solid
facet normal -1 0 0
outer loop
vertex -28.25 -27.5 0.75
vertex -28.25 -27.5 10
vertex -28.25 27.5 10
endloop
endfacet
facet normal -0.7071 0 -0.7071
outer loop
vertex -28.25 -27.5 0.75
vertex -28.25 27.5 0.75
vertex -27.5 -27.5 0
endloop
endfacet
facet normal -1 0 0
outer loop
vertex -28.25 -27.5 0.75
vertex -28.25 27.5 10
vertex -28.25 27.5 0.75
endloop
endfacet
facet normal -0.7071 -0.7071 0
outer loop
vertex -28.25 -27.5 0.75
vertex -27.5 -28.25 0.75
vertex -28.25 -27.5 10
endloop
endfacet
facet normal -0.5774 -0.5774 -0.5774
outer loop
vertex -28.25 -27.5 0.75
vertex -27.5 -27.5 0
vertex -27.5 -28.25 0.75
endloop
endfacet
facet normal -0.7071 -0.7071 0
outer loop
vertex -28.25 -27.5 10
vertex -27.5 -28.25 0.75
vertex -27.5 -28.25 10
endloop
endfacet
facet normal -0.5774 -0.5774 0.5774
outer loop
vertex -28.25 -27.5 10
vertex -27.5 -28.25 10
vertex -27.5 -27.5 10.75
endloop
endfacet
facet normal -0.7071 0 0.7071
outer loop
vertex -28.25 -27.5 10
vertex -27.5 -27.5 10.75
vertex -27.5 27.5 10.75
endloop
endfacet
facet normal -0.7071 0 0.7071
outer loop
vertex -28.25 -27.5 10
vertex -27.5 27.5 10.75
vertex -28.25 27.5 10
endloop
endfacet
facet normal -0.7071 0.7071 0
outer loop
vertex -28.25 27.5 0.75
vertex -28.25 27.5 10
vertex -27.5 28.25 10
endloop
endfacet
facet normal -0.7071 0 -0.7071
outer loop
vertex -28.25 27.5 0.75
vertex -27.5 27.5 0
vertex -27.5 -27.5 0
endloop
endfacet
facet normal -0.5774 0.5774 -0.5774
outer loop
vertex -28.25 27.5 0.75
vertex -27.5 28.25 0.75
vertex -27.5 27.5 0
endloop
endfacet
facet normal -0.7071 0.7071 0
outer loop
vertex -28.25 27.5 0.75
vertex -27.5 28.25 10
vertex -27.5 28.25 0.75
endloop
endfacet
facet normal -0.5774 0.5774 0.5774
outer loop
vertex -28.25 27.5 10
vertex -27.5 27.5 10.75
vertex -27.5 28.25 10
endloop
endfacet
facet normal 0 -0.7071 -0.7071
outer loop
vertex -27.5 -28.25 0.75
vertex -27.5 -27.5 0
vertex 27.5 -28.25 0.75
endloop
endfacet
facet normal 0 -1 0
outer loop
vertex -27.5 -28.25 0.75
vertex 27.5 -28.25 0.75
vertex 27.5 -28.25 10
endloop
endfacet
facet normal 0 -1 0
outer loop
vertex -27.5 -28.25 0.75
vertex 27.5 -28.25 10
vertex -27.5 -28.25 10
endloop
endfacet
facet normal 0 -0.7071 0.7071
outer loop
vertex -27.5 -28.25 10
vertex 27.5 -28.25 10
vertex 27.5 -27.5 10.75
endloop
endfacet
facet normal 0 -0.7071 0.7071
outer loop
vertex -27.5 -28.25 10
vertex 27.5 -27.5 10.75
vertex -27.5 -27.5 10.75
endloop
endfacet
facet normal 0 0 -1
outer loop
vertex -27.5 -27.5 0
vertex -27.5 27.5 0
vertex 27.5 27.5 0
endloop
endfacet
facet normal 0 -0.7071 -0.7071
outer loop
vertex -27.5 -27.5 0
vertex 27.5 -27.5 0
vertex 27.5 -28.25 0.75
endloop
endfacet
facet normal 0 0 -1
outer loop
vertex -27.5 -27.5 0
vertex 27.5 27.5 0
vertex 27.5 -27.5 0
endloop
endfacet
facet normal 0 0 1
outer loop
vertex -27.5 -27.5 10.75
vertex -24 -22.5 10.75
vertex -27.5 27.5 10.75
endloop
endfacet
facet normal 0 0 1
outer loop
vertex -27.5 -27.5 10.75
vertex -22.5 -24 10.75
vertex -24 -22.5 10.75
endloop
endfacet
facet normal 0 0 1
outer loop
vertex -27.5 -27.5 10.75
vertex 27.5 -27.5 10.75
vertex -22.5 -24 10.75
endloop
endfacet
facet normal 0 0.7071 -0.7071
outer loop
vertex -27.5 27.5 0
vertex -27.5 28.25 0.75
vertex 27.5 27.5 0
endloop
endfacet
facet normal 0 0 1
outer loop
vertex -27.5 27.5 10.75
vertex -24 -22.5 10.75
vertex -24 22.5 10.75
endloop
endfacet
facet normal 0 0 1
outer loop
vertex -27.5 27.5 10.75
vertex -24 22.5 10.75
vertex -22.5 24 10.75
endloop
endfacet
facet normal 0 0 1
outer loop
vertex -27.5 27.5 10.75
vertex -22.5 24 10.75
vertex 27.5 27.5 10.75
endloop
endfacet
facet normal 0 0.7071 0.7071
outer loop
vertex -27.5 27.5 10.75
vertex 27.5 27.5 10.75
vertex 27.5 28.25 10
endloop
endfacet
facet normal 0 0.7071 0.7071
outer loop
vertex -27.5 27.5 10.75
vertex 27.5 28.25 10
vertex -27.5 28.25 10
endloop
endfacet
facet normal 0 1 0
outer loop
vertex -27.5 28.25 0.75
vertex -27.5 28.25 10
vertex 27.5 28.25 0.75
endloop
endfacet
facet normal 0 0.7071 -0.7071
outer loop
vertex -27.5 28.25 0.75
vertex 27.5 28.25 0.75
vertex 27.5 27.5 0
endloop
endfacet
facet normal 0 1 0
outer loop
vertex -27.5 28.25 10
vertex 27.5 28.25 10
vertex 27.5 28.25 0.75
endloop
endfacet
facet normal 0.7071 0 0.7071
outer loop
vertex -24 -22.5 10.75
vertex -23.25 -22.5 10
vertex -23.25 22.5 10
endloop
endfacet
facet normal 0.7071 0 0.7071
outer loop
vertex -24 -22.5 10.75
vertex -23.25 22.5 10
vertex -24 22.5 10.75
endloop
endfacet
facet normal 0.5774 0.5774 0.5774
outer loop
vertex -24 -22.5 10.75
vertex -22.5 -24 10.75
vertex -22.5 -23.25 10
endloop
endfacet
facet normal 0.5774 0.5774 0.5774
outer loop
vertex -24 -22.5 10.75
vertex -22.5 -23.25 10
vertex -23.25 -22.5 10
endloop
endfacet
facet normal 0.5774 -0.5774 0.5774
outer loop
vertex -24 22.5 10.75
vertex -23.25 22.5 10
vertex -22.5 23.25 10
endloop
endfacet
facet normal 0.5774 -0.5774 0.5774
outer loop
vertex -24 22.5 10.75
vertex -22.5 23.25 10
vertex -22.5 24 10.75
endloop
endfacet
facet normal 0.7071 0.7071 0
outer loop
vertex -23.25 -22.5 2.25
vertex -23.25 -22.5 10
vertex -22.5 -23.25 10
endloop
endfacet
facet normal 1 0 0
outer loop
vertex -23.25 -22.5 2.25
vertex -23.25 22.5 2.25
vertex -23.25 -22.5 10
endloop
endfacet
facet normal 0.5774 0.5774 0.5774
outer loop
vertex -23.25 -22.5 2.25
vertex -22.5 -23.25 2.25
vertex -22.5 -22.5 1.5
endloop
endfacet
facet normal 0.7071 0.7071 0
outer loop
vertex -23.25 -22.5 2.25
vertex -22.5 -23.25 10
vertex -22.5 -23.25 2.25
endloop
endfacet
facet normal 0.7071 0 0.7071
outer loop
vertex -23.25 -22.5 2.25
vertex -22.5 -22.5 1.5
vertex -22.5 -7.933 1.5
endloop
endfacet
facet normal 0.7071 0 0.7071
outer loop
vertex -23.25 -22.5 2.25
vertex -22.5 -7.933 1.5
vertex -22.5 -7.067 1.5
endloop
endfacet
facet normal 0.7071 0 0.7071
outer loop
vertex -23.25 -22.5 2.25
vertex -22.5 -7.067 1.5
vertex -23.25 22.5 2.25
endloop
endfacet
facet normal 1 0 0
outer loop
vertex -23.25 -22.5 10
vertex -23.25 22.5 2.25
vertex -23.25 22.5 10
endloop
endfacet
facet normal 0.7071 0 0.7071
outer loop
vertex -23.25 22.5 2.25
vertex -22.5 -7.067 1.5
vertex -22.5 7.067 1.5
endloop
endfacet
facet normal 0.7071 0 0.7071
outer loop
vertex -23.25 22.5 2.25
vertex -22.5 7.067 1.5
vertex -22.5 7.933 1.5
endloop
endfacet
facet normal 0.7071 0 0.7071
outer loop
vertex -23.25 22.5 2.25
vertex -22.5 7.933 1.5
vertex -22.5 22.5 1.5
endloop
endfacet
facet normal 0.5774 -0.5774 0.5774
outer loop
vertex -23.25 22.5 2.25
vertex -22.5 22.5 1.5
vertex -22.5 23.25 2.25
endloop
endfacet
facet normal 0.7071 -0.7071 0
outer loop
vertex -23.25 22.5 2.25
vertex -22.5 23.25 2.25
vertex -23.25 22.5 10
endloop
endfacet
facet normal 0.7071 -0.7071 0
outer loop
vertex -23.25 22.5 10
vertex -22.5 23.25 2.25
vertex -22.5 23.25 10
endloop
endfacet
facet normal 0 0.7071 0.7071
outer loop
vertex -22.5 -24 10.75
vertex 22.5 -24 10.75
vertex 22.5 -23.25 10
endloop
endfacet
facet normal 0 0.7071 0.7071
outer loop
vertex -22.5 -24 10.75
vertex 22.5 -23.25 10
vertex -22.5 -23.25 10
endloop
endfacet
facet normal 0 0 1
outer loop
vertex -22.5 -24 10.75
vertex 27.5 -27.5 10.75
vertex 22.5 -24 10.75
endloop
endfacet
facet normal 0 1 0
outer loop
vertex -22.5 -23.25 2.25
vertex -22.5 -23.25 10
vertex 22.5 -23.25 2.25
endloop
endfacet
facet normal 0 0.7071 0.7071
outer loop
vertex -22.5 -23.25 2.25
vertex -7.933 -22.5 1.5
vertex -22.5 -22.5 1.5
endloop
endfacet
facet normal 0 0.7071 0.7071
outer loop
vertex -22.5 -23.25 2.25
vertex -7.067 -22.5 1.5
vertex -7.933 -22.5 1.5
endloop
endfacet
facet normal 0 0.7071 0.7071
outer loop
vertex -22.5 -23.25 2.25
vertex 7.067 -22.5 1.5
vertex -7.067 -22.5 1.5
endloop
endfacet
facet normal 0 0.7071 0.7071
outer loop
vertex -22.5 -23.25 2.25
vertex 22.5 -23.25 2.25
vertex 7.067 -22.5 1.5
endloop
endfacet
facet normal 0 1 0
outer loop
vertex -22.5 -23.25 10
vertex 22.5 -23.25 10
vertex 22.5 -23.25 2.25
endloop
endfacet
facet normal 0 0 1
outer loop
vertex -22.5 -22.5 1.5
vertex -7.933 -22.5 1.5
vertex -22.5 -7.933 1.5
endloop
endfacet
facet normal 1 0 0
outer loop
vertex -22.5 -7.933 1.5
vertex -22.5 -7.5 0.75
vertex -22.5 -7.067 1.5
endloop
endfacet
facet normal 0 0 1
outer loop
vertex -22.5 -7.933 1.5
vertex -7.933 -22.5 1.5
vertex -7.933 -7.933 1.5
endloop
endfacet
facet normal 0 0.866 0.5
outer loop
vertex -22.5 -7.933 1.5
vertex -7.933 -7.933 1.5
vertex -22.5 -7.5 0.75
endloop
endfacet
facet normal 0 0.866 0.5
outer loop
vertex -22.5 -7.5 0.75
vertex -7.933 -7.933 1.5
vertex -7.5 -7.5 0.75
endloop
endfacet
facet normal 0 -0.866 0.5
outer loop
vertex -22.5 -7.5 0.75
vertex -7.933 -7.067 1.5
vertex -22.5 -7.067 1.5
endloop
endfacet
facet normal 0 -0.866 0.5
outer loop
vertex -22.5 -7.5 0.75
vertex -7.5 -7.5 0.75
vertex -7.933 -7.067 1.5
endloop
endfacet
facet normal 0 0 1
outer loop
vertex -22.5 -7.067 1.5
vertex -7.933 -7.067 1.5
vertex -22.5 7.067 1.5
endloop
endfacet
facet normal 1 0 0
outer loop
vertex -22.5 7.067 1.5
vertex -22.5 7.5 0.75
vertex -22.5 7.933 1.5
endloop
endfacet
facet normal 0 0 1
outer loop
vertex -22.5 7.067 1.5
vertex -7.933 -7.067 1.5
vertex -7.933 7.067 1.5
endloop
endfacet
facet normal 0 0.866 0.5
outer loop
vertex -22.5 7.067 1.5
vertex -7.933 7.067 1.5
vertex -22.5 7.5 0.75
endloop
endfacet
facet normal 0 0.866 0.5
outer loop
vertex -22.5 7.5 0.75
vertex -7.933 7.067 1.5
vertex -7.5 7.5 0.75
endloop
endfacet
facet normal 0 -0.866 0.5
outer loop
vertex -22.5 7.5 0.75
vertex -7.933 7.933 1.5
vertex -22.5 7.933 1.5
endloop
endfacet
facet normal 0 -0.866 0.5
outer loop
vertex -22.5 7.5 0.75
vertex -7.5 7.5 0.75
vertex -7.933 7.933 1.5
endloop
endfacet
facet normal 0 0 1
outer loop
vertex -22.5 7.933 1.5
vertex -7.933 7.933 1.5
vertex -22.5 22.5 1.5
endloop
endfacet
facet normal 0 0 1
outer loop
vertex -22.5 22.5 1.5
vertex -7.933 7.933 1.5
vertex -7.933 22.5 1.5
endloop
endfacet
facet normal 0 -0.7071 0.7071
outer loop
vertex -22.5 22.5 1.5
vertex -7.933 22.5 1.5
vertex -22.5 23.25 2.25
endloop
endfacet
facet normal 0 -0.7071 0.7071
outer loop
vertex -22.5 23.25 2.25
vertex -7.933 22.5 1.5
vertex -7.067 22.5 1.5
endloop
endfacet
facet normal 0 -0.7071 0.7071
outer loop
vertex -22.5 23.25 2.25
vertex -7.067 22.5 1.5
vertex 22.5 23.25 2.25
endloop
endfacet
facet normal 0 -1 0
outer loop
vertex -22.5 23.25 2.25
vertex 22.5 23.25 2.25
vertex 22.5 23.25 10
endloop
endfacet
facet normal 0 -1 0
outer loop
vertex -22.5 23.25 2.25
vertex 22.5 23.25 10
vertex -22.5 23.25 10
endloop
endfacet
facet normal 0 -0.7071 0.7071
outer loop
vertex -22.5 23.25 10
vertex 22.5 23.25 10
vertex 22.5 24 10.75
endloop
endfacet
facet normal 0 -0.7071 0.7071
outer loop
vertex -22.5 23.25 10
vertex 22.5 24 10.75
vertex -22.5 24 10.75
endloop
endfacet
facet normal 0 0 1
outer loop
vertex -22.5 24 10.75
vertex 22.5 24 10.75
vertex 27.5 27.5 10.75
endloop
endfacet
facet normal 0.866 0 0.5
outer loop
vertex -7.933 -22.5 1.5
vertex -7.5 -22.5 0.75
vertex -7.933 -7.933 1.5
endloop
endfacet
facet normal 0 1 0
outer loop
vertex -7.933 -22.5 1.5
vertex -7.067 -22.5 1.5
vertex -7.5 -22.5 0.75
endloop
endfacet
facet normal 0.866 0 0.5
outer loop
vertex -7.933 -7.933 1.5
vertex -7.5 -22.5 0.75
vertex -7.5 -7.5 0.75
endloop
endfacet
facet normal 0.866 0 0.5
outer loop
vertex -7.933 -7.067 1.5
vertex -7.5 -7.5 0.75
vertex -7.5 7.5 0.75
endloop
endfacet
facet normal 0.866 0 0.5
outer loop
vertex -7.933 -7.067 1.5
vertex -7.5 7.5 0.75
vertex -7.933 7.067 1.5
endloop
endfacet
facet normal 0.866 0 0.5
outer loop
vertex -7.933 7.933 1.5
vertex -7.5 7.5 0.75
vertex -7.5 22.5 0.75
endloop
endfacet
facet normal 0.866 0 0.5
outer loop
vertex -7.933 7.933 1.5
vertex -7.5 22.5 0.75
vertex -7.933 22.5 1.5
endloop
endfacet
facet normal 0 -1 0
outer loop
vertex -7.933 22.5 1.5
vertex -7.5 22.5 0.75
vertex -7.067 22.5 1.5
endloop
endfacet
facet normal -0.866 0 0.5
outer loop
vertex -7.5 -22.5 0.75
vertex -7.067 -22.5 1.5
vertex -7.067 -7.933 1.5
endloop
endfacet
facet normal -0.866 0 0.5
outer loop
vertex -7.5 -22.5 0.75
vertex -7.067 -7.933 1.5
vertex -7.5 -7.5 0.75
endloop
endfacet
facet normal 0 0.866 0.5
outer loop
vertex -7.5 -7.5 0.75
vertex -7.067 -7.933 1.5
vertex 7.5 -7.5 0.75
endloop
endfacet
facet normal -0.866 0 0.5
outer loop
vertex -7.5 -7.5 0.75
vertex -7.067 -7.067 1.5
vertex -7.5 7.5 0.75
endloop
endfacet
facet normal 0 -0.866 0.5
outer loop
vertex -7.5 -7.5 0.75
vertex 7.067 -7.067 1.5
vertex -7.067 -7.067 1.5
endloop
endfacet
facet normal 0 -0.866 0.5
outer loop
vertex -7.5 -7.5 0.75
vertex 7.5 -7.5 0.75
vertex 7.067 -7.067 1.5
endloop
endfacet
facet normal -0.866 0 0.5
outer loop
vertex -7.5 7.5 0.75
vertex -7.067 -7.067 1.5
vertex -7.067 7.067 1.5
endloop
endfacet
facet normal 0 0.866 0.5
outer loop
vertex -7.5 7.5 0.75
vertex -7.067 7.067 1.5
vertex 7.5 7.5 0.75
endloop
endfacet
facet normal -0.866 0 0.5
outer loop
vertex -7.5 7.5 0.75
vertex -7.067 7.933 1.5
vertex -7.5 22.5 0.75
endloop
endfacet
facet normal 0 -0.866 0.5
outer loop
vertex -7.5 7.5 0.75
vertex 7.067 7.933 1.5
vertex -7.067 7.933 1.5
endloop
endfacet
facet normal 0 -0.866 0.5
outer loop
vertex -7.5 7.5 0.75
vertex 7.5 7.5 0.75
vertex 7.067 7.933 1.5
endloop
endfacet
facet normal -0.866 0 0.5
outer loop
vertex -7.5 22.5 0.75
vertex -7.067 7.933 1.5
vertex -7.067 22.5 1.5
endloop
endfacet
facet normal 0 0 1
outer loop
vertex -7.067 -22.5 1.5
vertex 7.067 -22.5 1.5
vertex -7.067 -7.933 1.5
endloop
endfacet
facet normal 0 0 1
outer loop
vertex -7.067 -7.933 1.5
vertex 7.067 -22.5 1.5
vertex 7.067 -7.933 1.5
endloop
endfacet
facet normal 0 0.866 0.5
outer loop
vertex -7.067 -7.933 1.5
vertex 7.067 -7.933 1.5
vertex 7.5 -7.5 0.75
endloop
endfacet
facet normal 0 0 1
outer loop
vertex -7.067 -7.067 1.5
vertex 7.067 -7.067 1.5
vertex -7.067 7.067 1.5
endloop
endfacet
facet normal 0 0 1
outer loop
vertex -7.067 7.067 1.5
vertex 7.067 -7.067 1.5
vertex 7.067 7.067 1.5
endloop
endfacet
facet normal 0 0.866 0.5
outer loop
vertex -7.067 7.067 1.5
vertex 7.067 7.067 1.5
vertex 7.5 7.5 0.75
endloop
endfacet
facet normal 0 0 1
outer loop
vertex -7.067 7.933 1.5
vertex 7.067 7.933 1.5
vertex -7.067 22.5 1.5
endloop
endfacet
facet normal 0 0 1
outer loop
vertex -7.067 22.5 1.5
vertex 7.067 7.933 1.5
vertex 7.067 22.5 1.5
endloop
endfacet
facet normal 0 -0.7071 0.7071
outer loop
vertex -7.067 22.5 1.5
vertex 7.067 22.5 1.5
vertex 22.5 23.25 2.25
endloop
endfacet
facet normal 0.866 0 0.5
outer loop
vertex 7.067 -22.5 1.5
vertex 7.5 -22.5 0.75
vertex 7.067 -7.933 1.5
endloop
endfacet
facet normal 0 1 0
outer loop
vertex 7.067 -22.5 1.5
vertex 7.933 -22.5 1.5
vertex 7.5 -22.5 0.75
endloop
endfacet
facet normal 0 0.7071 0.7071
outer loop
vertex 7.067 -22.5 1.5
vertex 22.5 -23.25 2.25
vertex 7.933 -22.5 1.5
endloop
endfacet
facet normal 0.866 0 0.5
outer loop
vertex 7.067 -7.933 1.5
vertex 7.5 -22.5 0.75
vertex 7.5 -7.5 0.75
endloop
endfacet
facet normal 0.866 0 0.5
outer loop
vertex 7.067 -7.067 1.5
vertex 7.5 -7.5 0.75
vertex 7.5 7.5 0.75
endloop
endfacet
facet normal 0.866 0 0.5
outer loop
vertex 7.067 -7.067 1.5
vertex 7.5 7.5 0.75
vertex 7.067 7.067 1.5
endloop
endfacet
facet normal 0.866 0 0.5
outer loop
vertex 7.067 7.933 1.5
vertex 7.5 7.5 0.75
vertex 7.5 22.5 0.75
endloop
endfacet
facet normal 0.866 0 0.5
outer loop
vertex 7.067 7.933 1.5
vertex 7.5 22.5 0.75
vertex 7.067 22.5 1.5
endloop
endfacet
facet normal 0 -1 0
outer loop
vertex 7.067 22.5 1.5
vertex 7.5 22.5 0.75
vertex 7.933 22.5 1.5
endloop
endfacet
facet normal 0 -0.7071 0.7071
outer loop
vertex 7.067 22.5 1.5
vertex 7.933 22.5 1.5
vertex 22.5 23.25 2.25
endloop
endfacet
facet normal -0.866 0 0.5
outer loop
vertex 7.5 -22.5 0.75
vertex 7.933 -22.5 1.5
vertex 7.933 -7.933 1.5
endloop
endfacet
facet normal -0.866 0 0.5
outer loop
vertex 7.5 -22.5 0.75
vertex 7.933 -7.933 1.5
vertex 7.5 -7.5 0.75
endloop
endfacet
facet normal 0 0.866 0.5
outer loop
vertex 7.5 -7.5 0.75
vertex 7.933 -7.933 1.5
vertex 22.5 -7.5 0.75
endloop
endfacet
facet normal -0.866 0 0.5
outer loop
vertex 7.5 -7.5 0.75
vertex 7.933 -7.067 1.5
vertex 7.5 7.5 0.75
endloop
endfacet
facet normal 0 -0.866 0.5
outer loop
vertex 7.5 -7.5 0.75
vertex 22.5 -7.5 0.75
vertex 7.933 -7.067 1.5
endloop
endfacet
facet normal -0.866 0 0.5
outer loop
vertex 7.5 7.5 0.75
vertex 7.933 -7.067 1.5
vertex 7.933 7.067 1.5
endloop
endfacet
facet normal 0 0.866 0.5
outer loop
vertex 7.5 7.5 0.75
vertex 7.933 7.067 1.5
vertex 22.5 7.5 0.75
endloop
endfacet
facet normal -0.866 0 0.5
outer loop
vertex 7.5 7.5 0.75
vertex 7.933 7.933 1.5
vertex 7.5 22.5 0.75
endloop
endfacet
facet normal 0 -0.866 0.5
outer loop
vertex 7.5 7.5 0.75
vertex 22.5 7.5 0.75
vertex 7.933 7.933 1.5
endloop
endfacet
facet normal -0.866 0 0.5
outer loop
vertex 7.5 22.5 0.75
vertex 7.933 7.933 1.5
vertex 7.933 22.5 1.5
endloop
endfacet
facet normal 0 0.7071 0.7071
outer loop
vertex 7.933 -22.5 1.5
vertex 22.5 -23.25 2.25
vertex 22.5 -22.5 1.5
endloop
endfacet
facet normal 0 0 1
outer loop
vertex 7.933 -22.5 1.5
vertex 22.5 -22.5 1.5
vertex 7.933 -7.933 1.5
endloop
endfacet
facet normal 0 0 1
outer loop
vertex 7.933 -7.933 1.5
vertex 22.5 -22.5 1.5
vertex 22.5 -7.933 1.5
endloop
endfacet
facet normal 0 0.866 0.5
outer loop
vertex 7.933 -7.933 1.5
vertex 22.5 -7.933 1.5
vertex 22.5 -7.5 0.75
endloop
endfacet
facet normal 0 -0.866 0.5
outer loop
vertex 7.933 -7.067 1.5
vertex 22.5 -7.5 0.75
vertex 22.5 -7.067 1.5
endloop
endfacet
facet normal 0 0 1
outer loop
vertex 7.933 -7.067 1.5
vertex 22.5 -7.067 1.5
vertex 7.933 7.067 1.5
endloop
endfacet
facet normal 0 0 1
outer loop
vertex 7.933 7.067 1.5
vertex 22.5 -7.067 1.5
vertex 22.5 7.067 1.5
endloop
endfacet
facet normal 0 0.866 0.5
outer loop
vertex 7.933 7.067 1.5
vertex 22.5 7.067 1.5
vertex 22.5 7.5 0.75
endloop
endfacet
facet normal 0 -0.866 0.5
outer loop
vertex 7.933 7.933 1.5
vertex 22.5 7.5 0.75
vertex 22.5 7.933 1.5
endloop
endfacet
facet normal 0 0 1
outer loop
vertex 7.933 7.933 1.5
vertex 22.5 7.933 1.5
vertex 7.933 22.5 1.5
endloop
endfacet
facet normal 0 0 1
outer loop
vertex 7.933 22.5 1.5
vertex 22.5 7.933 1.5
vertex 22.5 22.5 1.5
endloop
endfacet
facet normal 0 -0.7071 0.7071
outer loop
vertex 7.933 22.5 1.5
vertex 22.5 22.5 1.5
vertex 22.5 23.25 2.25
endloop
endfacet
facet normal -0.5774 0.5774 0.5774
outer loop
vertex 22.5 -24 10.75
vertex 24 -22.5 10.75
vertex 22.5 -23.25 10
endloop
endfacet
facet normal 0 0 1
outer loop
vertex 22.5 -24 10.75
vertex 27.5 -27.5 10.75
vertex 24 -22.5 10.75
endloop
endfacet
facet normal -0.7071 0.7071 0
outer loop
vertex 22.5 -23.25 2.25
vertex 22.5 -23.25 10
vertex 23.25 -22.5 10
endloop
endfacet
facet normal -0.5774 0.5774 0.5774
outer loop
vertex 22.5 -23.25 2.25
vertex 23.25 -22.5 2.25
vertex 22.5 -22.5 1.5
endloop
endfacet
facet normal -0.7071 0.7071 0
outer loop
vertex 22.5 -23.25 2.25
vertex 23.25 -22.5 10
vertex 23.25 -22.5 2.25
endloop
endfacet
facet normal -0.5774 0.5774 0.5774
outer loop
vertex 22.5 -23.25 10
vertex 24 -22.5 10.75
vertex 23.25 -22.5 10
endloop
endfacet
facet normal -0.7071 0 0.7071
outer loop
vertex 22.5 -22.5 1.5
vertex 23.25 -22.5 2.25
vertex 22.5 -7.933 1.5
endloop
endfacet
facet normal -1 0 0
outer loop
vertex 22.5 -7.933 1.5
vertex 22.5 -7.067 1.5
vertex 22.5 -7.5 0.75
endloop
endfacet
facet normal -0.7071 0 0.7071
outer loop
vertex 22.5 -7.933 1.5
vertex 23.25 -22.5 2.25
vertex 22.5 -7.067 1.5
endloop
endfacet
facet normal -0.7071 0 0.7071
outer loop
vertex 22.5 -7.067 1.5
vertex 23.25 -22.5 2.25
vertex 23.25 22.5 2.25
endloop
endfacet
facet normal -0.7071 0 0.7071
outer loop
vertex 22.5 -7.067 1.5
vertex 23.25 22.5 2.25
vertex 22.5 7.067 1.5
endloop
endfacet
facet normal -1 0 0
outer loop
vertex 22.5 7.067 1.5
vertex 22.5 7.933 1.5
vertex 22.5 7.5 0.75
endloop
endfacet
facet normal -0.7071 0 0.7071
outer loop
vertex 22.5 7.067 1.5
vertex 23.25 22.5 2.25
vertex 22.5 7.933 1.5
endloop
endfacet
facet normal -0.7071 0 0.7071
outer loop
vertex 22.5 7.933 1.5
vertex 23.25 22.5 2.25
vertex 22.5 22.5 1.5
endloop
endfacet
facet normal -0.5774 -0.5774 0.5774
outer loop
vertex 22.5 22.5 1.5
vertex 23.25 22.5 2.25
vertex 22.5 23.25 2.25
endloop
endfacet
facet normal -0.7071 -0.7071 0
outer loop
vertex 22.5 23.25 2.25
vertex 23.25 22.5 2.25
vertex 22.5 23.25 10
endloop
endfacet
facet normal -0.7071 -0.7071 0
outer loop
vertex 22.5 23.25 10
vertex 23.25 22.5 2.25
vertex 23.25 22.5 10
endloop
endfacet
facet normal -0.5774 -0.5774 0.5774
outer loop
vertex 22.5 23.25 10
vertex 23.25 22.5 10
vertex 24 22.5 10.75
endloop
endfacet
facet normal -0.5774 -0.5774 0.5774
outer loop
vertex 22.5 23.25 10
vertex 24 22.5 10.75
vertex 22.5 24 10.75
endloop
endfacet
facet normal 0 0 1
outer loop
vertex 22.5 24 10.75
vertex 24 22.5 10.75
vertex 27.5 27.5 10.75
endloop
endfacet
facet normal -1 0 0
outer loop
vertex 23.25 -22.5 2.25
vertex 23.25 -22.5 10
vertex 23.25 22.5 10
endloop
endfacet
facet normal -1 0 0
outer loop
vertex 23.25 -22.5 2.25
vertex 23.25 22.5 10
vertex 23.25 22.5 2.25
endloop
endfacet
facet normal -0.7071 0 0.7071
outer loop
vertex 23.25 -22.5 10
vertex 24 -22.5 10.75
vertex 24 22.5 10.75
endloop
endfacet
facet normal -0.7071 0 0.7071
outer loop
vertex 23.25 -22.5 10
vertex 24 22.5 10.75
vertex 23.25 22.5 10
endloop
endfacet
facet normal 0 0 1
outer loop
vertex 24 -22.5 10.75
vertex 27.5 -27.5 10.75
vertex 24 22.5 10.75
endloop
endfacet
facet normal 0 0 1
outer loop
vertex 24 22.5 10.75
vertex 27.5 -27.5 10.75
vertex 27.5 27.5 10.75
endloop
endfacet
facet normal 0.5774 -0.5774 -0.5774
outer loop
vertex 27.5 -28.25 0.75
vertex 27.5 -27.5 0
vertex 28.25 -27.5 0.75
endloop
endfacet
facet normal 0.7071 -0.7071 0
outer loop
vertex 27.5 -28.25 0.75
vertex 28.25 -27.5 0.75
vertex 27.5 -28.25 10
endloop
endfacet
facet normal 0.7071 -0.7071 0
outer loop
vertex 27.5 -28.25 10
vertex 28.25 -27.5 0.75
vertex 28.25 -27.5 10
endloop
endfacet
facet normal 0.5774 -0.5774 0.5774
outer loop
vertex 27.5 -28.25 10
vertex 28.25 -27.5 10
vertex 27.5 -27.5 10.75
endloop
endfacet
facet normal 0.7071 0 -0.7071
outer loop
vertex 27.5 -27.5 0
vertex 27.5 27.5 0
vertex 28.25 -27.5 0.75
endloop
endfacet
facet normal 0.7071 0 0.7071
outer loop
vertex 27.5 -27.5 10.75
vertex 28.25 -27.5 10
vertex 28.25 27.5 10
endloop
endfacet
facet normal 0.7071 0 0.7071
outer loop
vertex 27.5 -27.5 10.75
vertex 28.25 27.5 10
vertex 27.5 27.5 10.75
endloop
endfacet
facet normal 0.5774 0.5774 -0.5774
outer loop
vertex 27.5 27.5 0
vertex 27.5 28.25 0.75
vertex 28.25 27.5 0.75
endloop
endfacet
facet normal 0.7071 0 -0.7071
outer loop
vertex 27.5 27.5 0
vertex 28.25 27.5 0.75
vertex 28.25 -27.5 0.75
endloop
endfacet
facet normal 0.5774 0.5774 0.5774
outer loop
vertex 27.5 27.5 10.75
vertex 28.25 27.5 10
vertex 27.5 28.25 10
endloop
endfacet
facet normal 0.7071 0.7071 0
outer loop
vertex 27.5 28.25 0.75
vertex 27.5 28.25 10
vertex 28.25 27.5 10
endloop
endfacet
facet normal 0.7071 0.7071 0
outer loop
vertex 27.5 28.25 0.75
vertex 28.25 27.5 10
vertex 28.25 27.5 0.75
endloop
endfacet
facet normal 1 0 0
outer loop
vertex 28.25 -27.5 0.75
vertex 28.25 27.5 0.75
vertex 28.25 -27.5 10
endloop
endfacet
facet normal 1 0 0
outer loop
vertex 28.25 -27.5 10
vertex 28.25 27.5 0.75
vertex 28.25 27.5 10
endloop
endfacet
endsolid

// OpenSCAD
s=15;
size=3;
wall=5;
padding=0.75;
cham=.75;





difference(){
  Box();
  translate([0,0,cham*2])
    for(rot=[[90, 0], [90, 0, 90]])rotate(rot)
      for(i=[-size/2+1:size/2-1])translate([i*s, 0])
        rotate([0, 0, 30])cylinder(s*size, r=cham, $fn=3, center=true);
  
}



module Box(side=s*size+wall*2+padding*2)
minkowski(convexity=5){
  difference(){
    translate([0,0, side/2]) cube(side-cham*2,true);
    translate([0,0, side/2-wall+cham*2.0001]) minkowski(){
      cube(side-wall*2-cham*2,true);
      scale(2)union(){
        cylinder(cham, r1=cham, r2=0, $fn=4);
        rotate([180, 0])cylinder(cham, r1=cham, r2=0, $fn=4);
      }
    }
    translate([0,0, s/3*2])cylinder(150,d=500);
    }
    
  union(){
    cylinder(cham, r1=cham, r2=0, $fn=4);
    rotate([180, 0])cylinder(cham, r1=cham,r2=0, $fn=4);
    
  }
}


%cube(size*s, true);
